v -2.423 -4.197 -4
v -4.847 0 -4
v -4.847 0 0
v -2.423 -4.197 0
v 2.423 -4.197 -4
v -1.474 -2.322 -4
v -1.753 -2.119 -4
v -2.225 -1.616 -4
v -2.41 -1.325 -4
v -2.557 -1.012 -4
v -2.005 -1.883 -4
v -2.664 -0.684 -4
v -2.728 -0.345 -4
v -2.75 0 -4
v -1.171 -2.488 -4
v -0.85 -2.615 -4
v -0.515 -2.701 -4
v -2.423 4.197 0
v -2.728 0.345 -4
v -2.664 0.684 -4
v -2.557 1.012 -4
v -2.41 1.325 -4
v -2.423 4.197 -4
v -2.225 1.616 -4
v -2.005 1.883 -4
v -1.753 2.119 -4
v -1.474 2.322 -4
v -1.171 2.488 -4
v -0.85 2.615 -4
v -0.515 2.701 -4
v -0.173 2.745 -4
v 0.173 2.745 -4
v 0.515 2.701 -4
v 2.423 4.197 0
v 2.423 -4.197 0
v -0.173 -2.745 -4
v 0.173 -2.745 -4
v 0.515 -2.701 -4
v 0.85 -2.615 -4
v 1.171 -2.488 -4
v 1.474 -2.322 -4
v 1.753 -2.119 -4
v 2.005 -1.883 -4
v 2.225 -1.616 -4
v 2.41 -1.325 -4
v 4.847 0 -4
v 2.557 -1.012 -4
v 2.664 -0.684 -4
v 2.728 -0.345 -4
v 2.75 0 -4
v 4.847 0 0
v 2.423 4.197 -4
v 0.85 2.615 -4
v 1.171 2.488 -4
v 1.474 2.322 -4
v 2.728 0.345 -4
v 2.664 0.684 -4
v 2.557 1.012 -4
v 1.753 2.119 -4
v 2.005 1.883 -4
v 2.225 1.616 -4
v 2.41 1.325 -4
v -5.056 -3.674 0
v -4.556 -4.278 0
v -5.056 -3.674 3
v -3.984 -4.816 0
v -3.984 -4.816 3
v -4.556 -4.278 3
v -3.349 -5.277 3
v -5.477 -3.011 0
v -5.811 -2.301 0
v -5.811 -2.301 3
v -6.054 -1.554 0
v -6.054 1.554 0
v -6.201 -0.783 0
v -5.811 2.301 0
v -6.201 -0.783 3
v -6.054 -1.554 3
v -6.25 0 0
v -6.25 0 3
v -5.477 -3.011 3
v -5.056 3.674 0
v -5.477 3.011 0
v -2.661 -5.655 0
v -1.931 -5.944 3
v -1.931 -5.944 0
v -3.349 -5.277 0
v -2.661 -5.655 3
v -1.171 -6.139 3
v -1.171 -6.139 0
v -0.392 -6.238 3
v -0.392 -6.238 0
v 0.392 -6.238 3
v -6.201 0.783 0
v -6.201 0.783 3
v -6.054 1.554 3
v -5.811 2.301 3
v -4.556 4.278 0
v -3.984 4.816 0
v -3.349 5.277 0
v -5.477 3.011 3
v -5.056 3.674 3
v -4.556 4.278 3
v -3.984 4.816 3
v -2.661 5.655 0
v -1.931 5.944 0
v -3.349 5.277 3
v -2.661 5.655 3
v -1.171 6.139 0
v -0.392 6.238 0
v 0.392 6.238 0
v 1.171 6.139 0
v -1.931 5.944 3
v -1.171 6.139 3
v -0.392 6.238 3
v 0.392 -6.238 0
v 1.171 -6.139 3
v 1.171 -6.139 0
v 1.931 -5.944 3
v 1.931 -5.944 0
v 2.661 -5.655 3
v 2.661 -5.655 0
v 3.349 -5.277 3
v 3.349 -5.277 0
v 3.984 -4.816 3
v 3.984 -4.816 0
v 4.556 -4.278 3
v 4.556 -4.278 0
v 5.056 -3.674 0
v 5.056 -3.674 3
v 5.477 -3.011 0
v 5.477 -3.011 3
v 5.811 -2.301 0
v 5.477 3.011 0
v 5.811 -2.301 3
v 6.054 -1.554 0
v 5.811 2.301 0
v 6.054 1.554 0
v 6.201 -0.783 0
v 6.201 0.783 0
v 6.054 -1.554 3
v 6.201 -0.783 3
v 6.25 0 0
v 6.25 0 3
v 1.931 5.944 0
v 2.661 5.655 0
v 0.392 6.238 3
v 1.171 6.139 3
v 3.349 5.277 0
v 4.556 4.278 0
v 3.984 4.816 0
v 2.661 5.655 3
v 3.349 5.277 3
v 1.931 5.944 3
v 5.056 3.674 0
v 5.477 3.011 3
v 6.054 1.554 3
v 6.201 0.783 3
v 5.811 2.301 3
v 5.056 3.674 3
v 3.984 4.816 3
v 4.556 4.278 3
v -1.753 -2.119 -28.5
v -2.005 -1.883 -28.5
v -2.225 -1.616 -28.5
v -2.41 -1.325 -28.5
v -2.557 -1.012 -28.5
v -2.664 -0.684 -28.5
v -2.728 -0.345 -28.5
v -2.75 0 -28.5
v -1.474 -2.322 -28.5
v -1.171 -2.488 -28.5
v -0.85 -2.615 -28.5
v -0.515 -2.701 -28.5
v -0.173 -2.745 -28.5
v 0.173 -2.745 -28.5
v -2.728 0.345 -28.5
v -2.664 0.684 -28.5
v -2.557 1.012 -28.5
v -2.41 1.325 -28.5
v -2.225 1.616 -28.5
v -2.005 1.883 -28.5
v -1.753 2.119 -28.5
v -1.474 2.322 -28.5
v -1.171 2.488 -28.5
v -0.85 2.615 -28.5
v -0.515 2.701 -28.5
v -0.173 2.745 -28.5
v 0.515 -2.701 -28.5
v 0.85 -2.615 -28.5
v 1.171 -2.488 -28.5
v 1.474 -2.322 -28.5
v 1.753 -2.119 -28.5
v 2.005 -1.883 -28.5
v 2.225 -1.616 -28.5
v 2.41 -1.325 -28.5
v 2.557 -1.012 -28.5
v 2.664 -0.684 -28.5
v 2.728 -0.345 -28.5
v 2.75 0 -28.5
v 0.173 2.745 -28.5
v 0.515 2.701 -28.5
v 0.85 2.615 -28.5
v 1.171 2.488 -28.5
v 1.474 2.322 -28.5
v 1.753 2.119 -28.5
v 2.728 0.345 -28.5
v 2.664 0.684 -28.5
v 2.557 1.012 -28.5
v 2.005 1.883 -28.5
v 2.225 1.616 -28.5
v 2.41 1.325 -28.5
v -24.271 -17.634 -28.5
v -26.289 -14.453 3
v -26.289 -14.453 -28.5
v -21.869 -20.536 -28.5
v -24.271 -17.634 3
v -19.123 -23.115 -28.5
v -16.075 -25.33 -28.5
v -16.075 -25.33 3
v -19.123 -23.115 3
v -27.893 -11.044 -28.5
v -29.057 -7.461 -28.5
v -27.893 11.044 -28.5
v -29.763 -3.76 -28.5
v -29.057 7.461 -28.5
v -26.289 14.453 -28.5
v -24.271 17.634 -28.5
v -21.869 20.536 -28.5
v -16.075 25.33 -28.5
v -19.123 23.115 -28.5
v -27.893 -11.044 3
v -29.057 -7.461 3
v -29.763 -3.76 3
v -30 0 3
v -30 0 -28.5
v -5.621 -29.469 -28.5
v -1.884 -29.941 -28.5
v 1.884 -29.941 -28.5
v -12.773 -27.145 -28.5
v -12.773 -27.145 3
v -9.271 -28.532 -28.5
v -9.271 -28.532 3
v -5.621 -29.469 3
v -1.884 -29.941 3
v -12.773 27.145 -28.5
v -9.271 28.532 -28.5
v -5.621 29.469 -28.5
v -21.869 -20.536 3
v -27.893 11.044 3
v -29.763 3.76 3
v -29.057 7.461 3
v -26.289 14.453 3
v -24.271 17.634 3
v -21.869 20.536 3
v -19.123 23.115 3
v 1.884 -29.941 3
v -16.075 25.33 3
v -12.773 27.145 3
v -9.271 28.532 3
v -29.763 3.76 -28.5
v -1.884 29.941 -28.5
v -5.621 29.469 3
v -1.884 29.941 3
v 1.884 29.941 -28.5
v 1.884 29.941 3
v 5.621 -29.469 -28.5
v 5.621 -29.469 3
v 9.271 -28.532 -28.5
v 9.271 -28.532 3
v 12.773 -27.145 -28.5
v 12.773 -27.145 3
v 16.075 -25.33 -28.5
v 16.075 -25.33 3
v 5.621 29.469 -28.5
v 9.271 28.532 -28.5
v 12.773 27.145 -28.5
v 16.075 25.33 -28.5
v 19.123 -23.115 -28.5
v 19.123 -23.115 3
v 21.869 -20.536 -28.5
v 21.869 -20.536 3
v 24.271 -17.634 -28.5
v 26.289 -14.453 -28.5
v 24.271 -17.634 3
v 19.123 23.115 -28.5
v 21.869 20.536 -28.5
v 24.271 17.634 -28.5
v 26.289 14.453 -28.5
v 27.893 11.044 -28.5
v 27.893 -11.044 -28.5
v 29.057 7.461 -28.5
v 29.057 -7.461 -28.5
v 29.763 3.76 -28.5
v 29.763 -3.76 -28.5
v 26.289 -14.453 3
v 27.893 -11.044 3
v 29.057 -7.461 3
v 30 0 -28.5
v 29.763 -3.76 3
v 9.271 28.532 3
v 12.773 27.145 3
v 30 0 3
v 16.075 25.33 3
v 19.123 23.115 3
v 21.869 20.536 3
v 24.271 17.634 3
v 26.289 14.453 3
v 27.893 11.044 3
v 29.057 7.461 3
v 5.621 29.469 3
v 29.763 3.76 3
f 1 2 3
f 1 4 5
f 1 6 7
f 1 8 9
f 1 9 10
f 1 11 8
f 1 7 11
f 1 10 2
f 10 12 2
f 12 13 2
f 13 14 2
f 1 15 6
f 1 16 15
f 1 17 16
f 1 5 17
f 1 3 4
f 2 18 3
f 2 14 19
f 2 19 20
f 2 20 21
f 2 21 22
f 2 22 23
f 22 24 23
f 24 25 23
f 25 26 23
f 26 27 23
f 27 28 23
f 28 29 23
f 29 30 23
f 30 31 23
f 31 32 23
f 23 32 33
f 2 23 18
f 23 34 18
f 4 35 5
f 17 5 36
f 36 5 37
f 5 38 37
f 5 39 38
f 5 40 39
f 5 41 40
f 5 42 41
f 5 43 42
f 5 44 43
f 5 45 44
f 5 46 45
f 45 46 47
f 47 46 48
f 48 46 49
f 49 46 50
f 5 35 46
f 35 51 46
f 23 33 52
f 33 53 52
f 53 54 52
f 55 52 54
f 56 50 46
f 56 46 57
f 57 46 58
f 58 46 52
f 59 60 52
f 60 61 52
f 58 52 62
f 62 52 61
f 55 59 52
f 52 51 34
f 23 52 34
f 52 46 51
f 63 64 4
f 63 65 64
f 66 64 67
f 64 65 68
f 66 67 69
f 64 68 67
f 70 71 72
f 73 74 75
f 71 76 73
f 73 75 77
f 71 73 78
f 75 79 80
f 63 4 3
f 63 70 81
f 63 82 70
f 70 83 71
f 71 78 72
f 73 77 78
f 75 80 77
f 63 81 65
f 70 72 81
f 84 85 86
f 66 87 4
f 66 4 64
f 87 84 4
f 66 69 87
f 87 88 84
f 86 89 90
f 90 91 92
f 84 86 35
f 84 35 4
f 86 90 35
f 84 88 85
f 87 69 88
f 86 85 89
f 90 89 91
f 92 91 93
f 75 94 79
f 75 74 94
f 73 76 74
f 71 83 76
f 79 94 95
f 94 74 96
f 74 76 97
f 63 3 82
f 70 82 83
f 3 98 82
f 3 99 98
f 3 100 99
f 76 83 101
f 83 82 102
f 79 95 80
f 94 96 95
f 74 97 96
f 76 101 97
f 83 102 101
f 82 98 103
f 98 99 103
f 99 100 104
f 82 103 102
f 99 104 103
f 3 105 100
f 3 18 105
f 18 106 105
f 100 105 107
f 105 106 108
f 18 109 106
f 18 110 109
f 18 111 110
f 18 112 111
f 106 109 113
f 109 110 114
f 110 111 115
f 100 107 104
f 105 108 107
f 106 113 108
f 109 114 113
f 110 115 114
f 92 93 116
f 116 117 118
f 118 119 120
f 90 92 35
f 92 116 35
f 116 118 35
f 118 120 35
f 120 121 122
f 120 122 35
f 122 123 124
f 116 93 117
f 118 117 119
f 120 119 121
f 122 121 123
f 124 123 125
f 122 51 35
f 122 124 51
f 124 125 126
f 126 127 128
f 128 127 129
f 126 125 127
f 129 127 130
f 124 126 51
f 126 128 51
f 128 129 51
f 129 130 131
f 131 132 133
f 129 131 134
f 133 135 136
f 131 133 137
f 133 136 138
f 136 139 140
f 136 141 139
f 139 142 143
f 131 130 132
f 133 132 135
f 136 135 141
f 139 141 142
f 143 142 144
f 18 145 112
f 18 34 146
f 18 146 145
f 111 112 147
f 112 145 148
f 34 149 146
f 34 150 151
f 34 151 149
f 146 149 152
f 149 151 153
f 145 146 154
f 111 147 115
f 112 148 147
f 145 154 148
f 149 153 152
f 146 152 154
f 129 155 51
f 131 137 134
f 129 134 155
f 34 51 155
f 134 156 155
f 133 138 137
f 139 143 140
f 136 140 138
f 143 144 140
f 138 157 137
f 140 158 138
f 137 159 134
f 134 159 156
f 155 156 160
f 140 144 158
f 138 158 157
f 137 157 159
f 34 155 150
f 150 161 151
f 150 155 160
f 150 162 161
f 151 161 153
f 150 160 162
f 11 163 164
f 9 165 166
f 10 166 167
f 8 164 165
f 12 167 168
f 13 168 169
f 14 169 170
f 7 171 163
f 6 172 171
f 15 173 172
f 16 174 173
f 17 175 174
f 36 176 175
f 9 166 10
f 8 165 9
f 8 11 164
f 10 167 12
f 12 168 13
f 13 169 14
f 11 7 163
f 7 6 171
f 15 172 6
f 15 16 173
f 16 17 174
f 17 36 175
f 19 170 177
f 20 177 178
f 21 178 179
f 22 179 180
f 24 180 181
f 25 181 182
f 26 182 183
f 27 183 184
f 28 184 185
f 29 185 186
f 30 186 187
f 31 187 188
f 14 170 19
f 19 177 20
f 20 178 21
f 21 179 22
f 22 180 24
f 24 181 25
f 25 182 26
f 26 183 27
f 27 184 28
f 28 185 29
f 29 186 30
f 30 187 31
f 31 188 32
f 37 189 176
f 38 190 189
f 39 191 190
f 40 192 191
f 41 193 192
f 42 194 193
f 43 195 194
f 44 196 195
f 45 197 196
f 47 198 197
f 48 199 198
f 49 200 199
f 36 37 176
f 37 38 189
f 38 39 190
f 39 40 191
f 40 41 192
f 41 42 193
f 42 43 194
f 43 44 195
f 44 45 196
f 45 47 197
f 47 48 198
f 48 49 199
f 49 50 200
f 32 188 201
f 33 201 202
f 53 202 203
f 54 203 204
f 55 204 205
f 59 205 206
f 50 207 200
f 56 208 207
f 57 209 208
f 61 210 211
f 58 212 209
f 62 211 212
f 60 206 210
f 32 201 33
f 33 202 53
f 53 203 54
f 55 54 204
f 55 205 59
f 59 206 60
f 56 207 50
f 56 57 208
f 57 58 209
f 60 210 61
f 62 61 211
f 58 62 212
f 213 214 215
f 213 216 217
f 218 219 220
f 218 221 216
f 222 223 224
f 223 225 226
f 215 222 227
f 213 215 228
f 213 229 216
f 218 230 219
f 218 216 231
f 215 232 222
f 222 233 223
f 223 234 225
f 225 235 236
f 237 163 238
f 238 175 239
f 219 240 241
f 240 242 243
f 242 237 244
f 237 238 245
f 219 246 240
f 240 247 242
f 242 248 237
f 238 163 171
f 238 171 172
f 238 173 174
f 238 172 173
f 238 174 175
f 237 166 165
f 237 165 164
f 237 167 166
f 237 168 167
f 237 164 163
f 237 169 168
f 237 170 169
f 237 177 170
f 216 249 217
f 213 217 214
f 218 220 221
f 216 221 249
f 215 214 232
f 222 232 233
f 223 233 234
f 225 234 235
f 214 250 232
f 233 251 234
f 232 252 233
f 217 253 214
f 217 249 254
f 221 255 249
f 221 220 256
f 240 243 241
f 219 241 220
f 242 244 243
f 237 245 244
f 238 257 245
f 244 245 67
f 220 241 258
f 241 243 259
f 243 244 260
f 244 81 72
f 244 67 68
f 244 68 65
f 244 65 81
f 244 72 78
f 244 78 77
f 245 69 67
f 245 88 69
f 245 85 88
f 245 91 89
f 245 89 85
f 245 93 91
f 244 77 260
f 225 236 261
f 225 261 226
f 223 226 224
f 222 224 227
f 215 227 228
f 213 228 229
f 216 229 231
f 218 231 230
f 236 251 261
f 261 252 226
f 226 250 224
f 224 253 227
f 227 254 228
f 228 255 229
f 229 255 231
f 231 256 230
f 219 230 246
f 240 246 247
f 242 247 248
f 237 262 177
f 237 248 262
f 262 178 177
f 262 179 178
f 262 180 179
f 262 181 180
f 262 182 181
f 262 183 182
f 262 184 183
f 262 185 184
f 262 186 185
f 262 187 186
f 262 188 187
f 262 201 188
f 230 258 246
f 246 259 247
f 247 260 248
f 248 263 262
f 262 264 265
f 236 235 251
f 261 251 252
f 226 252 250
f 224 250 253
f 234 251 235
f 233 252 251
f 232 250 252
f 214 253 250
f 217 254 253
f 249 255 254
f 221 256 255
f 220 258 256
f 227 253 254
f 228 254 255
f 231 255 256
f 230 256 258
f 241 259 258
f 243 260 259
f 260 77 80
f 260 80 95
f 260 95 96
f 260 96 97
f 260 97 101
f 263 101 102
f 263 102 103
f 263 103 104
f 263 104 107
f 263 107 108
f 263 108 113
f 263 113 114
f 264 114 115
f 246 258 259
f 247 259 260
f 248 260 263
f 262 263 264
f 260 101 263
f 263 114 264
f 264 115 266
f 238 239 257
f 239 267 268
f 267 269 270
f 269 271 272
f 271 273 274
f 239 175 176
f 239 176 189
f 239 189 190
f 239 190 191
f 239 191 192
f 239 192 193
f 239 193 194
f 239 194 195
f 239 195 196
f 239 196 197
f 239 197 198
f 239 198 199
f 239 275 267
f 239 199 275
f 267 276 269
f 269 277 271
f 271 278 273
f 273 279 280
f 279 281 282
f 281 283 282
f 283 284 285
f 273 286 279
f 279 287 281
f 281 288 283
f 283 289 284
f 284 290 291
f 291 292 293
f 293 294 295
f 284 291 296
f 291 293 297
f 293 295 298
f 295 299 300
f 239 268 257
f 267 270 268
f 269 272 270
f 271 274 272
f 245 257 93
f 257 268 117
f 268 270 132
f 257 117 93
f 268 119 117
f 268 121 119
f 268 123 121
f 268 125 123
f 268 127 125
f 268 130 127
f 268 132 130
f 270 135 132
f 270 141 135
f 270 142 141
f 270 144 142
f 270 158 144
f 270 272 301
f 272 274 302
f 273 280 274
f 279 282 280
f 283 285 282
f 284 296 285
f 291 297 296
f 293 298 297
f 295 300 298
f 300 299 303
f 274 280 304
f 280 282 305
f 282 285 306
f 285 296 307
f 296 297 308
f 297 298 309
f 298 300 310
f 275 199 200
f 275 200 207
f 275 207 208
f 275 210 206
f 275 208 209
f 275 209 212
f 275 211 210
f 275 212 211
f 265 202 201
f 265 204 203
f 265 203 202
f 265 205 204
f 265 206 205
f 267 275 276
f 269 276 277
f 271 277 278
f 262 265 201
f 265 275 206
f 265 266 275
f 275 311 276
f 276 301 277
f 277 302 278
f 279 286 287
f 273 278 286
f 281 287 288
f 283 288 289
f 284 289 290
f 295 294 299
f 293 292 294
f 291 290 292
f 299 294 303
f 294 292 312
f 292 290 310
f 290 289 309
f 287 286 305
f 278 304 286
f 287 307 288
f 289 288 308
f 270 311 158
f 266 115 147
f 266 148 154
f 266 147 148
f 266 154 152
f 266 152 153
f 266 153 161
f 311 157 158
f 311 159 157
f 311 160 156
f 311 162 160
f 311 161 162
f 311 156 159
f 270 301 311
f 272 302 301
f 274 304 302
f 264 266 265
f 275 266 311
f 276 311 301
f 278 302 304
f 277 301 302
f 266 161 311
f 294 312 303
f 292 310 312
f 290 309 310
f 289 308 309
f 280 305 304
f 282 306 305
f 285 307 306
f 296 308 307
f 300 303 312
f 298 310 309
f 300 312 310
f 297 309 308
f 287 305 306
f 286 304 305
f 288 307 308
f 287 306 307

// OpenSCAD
$fn = 50;

difference() {
	union() {
		translate(v = [0, 0, -28.5]) {
			cylinder(h = 31.5, r = 30.0);
		}
	}
	union() {
		translate(v = [0, 0, 0]) {
			rotate(a = [0, 0, 0]) {
				difference() {
					union() {
						translate(v = [0, 0, -4]) {
							linear_extrude(height = 4) {
								polygon(points = [[4.8468, 0.0], [2.4234000000000004, 4.197451927062417], [-2.423399999999999, 4.197451927062417], [-4.8468, 5.935618106107392e-16], [-2.423400000000002, -4.197451927062416], [2.423399999999997, -4.197451927062419]]);
							}
						}
					}
					union();
				}
			}
		}
		#cylinder(h = 3, r = 6.25);
		#translate(v = [0, 0, -100.0]) {
			cylinder(h = 200, r = 2.75);
		}
	}
}
